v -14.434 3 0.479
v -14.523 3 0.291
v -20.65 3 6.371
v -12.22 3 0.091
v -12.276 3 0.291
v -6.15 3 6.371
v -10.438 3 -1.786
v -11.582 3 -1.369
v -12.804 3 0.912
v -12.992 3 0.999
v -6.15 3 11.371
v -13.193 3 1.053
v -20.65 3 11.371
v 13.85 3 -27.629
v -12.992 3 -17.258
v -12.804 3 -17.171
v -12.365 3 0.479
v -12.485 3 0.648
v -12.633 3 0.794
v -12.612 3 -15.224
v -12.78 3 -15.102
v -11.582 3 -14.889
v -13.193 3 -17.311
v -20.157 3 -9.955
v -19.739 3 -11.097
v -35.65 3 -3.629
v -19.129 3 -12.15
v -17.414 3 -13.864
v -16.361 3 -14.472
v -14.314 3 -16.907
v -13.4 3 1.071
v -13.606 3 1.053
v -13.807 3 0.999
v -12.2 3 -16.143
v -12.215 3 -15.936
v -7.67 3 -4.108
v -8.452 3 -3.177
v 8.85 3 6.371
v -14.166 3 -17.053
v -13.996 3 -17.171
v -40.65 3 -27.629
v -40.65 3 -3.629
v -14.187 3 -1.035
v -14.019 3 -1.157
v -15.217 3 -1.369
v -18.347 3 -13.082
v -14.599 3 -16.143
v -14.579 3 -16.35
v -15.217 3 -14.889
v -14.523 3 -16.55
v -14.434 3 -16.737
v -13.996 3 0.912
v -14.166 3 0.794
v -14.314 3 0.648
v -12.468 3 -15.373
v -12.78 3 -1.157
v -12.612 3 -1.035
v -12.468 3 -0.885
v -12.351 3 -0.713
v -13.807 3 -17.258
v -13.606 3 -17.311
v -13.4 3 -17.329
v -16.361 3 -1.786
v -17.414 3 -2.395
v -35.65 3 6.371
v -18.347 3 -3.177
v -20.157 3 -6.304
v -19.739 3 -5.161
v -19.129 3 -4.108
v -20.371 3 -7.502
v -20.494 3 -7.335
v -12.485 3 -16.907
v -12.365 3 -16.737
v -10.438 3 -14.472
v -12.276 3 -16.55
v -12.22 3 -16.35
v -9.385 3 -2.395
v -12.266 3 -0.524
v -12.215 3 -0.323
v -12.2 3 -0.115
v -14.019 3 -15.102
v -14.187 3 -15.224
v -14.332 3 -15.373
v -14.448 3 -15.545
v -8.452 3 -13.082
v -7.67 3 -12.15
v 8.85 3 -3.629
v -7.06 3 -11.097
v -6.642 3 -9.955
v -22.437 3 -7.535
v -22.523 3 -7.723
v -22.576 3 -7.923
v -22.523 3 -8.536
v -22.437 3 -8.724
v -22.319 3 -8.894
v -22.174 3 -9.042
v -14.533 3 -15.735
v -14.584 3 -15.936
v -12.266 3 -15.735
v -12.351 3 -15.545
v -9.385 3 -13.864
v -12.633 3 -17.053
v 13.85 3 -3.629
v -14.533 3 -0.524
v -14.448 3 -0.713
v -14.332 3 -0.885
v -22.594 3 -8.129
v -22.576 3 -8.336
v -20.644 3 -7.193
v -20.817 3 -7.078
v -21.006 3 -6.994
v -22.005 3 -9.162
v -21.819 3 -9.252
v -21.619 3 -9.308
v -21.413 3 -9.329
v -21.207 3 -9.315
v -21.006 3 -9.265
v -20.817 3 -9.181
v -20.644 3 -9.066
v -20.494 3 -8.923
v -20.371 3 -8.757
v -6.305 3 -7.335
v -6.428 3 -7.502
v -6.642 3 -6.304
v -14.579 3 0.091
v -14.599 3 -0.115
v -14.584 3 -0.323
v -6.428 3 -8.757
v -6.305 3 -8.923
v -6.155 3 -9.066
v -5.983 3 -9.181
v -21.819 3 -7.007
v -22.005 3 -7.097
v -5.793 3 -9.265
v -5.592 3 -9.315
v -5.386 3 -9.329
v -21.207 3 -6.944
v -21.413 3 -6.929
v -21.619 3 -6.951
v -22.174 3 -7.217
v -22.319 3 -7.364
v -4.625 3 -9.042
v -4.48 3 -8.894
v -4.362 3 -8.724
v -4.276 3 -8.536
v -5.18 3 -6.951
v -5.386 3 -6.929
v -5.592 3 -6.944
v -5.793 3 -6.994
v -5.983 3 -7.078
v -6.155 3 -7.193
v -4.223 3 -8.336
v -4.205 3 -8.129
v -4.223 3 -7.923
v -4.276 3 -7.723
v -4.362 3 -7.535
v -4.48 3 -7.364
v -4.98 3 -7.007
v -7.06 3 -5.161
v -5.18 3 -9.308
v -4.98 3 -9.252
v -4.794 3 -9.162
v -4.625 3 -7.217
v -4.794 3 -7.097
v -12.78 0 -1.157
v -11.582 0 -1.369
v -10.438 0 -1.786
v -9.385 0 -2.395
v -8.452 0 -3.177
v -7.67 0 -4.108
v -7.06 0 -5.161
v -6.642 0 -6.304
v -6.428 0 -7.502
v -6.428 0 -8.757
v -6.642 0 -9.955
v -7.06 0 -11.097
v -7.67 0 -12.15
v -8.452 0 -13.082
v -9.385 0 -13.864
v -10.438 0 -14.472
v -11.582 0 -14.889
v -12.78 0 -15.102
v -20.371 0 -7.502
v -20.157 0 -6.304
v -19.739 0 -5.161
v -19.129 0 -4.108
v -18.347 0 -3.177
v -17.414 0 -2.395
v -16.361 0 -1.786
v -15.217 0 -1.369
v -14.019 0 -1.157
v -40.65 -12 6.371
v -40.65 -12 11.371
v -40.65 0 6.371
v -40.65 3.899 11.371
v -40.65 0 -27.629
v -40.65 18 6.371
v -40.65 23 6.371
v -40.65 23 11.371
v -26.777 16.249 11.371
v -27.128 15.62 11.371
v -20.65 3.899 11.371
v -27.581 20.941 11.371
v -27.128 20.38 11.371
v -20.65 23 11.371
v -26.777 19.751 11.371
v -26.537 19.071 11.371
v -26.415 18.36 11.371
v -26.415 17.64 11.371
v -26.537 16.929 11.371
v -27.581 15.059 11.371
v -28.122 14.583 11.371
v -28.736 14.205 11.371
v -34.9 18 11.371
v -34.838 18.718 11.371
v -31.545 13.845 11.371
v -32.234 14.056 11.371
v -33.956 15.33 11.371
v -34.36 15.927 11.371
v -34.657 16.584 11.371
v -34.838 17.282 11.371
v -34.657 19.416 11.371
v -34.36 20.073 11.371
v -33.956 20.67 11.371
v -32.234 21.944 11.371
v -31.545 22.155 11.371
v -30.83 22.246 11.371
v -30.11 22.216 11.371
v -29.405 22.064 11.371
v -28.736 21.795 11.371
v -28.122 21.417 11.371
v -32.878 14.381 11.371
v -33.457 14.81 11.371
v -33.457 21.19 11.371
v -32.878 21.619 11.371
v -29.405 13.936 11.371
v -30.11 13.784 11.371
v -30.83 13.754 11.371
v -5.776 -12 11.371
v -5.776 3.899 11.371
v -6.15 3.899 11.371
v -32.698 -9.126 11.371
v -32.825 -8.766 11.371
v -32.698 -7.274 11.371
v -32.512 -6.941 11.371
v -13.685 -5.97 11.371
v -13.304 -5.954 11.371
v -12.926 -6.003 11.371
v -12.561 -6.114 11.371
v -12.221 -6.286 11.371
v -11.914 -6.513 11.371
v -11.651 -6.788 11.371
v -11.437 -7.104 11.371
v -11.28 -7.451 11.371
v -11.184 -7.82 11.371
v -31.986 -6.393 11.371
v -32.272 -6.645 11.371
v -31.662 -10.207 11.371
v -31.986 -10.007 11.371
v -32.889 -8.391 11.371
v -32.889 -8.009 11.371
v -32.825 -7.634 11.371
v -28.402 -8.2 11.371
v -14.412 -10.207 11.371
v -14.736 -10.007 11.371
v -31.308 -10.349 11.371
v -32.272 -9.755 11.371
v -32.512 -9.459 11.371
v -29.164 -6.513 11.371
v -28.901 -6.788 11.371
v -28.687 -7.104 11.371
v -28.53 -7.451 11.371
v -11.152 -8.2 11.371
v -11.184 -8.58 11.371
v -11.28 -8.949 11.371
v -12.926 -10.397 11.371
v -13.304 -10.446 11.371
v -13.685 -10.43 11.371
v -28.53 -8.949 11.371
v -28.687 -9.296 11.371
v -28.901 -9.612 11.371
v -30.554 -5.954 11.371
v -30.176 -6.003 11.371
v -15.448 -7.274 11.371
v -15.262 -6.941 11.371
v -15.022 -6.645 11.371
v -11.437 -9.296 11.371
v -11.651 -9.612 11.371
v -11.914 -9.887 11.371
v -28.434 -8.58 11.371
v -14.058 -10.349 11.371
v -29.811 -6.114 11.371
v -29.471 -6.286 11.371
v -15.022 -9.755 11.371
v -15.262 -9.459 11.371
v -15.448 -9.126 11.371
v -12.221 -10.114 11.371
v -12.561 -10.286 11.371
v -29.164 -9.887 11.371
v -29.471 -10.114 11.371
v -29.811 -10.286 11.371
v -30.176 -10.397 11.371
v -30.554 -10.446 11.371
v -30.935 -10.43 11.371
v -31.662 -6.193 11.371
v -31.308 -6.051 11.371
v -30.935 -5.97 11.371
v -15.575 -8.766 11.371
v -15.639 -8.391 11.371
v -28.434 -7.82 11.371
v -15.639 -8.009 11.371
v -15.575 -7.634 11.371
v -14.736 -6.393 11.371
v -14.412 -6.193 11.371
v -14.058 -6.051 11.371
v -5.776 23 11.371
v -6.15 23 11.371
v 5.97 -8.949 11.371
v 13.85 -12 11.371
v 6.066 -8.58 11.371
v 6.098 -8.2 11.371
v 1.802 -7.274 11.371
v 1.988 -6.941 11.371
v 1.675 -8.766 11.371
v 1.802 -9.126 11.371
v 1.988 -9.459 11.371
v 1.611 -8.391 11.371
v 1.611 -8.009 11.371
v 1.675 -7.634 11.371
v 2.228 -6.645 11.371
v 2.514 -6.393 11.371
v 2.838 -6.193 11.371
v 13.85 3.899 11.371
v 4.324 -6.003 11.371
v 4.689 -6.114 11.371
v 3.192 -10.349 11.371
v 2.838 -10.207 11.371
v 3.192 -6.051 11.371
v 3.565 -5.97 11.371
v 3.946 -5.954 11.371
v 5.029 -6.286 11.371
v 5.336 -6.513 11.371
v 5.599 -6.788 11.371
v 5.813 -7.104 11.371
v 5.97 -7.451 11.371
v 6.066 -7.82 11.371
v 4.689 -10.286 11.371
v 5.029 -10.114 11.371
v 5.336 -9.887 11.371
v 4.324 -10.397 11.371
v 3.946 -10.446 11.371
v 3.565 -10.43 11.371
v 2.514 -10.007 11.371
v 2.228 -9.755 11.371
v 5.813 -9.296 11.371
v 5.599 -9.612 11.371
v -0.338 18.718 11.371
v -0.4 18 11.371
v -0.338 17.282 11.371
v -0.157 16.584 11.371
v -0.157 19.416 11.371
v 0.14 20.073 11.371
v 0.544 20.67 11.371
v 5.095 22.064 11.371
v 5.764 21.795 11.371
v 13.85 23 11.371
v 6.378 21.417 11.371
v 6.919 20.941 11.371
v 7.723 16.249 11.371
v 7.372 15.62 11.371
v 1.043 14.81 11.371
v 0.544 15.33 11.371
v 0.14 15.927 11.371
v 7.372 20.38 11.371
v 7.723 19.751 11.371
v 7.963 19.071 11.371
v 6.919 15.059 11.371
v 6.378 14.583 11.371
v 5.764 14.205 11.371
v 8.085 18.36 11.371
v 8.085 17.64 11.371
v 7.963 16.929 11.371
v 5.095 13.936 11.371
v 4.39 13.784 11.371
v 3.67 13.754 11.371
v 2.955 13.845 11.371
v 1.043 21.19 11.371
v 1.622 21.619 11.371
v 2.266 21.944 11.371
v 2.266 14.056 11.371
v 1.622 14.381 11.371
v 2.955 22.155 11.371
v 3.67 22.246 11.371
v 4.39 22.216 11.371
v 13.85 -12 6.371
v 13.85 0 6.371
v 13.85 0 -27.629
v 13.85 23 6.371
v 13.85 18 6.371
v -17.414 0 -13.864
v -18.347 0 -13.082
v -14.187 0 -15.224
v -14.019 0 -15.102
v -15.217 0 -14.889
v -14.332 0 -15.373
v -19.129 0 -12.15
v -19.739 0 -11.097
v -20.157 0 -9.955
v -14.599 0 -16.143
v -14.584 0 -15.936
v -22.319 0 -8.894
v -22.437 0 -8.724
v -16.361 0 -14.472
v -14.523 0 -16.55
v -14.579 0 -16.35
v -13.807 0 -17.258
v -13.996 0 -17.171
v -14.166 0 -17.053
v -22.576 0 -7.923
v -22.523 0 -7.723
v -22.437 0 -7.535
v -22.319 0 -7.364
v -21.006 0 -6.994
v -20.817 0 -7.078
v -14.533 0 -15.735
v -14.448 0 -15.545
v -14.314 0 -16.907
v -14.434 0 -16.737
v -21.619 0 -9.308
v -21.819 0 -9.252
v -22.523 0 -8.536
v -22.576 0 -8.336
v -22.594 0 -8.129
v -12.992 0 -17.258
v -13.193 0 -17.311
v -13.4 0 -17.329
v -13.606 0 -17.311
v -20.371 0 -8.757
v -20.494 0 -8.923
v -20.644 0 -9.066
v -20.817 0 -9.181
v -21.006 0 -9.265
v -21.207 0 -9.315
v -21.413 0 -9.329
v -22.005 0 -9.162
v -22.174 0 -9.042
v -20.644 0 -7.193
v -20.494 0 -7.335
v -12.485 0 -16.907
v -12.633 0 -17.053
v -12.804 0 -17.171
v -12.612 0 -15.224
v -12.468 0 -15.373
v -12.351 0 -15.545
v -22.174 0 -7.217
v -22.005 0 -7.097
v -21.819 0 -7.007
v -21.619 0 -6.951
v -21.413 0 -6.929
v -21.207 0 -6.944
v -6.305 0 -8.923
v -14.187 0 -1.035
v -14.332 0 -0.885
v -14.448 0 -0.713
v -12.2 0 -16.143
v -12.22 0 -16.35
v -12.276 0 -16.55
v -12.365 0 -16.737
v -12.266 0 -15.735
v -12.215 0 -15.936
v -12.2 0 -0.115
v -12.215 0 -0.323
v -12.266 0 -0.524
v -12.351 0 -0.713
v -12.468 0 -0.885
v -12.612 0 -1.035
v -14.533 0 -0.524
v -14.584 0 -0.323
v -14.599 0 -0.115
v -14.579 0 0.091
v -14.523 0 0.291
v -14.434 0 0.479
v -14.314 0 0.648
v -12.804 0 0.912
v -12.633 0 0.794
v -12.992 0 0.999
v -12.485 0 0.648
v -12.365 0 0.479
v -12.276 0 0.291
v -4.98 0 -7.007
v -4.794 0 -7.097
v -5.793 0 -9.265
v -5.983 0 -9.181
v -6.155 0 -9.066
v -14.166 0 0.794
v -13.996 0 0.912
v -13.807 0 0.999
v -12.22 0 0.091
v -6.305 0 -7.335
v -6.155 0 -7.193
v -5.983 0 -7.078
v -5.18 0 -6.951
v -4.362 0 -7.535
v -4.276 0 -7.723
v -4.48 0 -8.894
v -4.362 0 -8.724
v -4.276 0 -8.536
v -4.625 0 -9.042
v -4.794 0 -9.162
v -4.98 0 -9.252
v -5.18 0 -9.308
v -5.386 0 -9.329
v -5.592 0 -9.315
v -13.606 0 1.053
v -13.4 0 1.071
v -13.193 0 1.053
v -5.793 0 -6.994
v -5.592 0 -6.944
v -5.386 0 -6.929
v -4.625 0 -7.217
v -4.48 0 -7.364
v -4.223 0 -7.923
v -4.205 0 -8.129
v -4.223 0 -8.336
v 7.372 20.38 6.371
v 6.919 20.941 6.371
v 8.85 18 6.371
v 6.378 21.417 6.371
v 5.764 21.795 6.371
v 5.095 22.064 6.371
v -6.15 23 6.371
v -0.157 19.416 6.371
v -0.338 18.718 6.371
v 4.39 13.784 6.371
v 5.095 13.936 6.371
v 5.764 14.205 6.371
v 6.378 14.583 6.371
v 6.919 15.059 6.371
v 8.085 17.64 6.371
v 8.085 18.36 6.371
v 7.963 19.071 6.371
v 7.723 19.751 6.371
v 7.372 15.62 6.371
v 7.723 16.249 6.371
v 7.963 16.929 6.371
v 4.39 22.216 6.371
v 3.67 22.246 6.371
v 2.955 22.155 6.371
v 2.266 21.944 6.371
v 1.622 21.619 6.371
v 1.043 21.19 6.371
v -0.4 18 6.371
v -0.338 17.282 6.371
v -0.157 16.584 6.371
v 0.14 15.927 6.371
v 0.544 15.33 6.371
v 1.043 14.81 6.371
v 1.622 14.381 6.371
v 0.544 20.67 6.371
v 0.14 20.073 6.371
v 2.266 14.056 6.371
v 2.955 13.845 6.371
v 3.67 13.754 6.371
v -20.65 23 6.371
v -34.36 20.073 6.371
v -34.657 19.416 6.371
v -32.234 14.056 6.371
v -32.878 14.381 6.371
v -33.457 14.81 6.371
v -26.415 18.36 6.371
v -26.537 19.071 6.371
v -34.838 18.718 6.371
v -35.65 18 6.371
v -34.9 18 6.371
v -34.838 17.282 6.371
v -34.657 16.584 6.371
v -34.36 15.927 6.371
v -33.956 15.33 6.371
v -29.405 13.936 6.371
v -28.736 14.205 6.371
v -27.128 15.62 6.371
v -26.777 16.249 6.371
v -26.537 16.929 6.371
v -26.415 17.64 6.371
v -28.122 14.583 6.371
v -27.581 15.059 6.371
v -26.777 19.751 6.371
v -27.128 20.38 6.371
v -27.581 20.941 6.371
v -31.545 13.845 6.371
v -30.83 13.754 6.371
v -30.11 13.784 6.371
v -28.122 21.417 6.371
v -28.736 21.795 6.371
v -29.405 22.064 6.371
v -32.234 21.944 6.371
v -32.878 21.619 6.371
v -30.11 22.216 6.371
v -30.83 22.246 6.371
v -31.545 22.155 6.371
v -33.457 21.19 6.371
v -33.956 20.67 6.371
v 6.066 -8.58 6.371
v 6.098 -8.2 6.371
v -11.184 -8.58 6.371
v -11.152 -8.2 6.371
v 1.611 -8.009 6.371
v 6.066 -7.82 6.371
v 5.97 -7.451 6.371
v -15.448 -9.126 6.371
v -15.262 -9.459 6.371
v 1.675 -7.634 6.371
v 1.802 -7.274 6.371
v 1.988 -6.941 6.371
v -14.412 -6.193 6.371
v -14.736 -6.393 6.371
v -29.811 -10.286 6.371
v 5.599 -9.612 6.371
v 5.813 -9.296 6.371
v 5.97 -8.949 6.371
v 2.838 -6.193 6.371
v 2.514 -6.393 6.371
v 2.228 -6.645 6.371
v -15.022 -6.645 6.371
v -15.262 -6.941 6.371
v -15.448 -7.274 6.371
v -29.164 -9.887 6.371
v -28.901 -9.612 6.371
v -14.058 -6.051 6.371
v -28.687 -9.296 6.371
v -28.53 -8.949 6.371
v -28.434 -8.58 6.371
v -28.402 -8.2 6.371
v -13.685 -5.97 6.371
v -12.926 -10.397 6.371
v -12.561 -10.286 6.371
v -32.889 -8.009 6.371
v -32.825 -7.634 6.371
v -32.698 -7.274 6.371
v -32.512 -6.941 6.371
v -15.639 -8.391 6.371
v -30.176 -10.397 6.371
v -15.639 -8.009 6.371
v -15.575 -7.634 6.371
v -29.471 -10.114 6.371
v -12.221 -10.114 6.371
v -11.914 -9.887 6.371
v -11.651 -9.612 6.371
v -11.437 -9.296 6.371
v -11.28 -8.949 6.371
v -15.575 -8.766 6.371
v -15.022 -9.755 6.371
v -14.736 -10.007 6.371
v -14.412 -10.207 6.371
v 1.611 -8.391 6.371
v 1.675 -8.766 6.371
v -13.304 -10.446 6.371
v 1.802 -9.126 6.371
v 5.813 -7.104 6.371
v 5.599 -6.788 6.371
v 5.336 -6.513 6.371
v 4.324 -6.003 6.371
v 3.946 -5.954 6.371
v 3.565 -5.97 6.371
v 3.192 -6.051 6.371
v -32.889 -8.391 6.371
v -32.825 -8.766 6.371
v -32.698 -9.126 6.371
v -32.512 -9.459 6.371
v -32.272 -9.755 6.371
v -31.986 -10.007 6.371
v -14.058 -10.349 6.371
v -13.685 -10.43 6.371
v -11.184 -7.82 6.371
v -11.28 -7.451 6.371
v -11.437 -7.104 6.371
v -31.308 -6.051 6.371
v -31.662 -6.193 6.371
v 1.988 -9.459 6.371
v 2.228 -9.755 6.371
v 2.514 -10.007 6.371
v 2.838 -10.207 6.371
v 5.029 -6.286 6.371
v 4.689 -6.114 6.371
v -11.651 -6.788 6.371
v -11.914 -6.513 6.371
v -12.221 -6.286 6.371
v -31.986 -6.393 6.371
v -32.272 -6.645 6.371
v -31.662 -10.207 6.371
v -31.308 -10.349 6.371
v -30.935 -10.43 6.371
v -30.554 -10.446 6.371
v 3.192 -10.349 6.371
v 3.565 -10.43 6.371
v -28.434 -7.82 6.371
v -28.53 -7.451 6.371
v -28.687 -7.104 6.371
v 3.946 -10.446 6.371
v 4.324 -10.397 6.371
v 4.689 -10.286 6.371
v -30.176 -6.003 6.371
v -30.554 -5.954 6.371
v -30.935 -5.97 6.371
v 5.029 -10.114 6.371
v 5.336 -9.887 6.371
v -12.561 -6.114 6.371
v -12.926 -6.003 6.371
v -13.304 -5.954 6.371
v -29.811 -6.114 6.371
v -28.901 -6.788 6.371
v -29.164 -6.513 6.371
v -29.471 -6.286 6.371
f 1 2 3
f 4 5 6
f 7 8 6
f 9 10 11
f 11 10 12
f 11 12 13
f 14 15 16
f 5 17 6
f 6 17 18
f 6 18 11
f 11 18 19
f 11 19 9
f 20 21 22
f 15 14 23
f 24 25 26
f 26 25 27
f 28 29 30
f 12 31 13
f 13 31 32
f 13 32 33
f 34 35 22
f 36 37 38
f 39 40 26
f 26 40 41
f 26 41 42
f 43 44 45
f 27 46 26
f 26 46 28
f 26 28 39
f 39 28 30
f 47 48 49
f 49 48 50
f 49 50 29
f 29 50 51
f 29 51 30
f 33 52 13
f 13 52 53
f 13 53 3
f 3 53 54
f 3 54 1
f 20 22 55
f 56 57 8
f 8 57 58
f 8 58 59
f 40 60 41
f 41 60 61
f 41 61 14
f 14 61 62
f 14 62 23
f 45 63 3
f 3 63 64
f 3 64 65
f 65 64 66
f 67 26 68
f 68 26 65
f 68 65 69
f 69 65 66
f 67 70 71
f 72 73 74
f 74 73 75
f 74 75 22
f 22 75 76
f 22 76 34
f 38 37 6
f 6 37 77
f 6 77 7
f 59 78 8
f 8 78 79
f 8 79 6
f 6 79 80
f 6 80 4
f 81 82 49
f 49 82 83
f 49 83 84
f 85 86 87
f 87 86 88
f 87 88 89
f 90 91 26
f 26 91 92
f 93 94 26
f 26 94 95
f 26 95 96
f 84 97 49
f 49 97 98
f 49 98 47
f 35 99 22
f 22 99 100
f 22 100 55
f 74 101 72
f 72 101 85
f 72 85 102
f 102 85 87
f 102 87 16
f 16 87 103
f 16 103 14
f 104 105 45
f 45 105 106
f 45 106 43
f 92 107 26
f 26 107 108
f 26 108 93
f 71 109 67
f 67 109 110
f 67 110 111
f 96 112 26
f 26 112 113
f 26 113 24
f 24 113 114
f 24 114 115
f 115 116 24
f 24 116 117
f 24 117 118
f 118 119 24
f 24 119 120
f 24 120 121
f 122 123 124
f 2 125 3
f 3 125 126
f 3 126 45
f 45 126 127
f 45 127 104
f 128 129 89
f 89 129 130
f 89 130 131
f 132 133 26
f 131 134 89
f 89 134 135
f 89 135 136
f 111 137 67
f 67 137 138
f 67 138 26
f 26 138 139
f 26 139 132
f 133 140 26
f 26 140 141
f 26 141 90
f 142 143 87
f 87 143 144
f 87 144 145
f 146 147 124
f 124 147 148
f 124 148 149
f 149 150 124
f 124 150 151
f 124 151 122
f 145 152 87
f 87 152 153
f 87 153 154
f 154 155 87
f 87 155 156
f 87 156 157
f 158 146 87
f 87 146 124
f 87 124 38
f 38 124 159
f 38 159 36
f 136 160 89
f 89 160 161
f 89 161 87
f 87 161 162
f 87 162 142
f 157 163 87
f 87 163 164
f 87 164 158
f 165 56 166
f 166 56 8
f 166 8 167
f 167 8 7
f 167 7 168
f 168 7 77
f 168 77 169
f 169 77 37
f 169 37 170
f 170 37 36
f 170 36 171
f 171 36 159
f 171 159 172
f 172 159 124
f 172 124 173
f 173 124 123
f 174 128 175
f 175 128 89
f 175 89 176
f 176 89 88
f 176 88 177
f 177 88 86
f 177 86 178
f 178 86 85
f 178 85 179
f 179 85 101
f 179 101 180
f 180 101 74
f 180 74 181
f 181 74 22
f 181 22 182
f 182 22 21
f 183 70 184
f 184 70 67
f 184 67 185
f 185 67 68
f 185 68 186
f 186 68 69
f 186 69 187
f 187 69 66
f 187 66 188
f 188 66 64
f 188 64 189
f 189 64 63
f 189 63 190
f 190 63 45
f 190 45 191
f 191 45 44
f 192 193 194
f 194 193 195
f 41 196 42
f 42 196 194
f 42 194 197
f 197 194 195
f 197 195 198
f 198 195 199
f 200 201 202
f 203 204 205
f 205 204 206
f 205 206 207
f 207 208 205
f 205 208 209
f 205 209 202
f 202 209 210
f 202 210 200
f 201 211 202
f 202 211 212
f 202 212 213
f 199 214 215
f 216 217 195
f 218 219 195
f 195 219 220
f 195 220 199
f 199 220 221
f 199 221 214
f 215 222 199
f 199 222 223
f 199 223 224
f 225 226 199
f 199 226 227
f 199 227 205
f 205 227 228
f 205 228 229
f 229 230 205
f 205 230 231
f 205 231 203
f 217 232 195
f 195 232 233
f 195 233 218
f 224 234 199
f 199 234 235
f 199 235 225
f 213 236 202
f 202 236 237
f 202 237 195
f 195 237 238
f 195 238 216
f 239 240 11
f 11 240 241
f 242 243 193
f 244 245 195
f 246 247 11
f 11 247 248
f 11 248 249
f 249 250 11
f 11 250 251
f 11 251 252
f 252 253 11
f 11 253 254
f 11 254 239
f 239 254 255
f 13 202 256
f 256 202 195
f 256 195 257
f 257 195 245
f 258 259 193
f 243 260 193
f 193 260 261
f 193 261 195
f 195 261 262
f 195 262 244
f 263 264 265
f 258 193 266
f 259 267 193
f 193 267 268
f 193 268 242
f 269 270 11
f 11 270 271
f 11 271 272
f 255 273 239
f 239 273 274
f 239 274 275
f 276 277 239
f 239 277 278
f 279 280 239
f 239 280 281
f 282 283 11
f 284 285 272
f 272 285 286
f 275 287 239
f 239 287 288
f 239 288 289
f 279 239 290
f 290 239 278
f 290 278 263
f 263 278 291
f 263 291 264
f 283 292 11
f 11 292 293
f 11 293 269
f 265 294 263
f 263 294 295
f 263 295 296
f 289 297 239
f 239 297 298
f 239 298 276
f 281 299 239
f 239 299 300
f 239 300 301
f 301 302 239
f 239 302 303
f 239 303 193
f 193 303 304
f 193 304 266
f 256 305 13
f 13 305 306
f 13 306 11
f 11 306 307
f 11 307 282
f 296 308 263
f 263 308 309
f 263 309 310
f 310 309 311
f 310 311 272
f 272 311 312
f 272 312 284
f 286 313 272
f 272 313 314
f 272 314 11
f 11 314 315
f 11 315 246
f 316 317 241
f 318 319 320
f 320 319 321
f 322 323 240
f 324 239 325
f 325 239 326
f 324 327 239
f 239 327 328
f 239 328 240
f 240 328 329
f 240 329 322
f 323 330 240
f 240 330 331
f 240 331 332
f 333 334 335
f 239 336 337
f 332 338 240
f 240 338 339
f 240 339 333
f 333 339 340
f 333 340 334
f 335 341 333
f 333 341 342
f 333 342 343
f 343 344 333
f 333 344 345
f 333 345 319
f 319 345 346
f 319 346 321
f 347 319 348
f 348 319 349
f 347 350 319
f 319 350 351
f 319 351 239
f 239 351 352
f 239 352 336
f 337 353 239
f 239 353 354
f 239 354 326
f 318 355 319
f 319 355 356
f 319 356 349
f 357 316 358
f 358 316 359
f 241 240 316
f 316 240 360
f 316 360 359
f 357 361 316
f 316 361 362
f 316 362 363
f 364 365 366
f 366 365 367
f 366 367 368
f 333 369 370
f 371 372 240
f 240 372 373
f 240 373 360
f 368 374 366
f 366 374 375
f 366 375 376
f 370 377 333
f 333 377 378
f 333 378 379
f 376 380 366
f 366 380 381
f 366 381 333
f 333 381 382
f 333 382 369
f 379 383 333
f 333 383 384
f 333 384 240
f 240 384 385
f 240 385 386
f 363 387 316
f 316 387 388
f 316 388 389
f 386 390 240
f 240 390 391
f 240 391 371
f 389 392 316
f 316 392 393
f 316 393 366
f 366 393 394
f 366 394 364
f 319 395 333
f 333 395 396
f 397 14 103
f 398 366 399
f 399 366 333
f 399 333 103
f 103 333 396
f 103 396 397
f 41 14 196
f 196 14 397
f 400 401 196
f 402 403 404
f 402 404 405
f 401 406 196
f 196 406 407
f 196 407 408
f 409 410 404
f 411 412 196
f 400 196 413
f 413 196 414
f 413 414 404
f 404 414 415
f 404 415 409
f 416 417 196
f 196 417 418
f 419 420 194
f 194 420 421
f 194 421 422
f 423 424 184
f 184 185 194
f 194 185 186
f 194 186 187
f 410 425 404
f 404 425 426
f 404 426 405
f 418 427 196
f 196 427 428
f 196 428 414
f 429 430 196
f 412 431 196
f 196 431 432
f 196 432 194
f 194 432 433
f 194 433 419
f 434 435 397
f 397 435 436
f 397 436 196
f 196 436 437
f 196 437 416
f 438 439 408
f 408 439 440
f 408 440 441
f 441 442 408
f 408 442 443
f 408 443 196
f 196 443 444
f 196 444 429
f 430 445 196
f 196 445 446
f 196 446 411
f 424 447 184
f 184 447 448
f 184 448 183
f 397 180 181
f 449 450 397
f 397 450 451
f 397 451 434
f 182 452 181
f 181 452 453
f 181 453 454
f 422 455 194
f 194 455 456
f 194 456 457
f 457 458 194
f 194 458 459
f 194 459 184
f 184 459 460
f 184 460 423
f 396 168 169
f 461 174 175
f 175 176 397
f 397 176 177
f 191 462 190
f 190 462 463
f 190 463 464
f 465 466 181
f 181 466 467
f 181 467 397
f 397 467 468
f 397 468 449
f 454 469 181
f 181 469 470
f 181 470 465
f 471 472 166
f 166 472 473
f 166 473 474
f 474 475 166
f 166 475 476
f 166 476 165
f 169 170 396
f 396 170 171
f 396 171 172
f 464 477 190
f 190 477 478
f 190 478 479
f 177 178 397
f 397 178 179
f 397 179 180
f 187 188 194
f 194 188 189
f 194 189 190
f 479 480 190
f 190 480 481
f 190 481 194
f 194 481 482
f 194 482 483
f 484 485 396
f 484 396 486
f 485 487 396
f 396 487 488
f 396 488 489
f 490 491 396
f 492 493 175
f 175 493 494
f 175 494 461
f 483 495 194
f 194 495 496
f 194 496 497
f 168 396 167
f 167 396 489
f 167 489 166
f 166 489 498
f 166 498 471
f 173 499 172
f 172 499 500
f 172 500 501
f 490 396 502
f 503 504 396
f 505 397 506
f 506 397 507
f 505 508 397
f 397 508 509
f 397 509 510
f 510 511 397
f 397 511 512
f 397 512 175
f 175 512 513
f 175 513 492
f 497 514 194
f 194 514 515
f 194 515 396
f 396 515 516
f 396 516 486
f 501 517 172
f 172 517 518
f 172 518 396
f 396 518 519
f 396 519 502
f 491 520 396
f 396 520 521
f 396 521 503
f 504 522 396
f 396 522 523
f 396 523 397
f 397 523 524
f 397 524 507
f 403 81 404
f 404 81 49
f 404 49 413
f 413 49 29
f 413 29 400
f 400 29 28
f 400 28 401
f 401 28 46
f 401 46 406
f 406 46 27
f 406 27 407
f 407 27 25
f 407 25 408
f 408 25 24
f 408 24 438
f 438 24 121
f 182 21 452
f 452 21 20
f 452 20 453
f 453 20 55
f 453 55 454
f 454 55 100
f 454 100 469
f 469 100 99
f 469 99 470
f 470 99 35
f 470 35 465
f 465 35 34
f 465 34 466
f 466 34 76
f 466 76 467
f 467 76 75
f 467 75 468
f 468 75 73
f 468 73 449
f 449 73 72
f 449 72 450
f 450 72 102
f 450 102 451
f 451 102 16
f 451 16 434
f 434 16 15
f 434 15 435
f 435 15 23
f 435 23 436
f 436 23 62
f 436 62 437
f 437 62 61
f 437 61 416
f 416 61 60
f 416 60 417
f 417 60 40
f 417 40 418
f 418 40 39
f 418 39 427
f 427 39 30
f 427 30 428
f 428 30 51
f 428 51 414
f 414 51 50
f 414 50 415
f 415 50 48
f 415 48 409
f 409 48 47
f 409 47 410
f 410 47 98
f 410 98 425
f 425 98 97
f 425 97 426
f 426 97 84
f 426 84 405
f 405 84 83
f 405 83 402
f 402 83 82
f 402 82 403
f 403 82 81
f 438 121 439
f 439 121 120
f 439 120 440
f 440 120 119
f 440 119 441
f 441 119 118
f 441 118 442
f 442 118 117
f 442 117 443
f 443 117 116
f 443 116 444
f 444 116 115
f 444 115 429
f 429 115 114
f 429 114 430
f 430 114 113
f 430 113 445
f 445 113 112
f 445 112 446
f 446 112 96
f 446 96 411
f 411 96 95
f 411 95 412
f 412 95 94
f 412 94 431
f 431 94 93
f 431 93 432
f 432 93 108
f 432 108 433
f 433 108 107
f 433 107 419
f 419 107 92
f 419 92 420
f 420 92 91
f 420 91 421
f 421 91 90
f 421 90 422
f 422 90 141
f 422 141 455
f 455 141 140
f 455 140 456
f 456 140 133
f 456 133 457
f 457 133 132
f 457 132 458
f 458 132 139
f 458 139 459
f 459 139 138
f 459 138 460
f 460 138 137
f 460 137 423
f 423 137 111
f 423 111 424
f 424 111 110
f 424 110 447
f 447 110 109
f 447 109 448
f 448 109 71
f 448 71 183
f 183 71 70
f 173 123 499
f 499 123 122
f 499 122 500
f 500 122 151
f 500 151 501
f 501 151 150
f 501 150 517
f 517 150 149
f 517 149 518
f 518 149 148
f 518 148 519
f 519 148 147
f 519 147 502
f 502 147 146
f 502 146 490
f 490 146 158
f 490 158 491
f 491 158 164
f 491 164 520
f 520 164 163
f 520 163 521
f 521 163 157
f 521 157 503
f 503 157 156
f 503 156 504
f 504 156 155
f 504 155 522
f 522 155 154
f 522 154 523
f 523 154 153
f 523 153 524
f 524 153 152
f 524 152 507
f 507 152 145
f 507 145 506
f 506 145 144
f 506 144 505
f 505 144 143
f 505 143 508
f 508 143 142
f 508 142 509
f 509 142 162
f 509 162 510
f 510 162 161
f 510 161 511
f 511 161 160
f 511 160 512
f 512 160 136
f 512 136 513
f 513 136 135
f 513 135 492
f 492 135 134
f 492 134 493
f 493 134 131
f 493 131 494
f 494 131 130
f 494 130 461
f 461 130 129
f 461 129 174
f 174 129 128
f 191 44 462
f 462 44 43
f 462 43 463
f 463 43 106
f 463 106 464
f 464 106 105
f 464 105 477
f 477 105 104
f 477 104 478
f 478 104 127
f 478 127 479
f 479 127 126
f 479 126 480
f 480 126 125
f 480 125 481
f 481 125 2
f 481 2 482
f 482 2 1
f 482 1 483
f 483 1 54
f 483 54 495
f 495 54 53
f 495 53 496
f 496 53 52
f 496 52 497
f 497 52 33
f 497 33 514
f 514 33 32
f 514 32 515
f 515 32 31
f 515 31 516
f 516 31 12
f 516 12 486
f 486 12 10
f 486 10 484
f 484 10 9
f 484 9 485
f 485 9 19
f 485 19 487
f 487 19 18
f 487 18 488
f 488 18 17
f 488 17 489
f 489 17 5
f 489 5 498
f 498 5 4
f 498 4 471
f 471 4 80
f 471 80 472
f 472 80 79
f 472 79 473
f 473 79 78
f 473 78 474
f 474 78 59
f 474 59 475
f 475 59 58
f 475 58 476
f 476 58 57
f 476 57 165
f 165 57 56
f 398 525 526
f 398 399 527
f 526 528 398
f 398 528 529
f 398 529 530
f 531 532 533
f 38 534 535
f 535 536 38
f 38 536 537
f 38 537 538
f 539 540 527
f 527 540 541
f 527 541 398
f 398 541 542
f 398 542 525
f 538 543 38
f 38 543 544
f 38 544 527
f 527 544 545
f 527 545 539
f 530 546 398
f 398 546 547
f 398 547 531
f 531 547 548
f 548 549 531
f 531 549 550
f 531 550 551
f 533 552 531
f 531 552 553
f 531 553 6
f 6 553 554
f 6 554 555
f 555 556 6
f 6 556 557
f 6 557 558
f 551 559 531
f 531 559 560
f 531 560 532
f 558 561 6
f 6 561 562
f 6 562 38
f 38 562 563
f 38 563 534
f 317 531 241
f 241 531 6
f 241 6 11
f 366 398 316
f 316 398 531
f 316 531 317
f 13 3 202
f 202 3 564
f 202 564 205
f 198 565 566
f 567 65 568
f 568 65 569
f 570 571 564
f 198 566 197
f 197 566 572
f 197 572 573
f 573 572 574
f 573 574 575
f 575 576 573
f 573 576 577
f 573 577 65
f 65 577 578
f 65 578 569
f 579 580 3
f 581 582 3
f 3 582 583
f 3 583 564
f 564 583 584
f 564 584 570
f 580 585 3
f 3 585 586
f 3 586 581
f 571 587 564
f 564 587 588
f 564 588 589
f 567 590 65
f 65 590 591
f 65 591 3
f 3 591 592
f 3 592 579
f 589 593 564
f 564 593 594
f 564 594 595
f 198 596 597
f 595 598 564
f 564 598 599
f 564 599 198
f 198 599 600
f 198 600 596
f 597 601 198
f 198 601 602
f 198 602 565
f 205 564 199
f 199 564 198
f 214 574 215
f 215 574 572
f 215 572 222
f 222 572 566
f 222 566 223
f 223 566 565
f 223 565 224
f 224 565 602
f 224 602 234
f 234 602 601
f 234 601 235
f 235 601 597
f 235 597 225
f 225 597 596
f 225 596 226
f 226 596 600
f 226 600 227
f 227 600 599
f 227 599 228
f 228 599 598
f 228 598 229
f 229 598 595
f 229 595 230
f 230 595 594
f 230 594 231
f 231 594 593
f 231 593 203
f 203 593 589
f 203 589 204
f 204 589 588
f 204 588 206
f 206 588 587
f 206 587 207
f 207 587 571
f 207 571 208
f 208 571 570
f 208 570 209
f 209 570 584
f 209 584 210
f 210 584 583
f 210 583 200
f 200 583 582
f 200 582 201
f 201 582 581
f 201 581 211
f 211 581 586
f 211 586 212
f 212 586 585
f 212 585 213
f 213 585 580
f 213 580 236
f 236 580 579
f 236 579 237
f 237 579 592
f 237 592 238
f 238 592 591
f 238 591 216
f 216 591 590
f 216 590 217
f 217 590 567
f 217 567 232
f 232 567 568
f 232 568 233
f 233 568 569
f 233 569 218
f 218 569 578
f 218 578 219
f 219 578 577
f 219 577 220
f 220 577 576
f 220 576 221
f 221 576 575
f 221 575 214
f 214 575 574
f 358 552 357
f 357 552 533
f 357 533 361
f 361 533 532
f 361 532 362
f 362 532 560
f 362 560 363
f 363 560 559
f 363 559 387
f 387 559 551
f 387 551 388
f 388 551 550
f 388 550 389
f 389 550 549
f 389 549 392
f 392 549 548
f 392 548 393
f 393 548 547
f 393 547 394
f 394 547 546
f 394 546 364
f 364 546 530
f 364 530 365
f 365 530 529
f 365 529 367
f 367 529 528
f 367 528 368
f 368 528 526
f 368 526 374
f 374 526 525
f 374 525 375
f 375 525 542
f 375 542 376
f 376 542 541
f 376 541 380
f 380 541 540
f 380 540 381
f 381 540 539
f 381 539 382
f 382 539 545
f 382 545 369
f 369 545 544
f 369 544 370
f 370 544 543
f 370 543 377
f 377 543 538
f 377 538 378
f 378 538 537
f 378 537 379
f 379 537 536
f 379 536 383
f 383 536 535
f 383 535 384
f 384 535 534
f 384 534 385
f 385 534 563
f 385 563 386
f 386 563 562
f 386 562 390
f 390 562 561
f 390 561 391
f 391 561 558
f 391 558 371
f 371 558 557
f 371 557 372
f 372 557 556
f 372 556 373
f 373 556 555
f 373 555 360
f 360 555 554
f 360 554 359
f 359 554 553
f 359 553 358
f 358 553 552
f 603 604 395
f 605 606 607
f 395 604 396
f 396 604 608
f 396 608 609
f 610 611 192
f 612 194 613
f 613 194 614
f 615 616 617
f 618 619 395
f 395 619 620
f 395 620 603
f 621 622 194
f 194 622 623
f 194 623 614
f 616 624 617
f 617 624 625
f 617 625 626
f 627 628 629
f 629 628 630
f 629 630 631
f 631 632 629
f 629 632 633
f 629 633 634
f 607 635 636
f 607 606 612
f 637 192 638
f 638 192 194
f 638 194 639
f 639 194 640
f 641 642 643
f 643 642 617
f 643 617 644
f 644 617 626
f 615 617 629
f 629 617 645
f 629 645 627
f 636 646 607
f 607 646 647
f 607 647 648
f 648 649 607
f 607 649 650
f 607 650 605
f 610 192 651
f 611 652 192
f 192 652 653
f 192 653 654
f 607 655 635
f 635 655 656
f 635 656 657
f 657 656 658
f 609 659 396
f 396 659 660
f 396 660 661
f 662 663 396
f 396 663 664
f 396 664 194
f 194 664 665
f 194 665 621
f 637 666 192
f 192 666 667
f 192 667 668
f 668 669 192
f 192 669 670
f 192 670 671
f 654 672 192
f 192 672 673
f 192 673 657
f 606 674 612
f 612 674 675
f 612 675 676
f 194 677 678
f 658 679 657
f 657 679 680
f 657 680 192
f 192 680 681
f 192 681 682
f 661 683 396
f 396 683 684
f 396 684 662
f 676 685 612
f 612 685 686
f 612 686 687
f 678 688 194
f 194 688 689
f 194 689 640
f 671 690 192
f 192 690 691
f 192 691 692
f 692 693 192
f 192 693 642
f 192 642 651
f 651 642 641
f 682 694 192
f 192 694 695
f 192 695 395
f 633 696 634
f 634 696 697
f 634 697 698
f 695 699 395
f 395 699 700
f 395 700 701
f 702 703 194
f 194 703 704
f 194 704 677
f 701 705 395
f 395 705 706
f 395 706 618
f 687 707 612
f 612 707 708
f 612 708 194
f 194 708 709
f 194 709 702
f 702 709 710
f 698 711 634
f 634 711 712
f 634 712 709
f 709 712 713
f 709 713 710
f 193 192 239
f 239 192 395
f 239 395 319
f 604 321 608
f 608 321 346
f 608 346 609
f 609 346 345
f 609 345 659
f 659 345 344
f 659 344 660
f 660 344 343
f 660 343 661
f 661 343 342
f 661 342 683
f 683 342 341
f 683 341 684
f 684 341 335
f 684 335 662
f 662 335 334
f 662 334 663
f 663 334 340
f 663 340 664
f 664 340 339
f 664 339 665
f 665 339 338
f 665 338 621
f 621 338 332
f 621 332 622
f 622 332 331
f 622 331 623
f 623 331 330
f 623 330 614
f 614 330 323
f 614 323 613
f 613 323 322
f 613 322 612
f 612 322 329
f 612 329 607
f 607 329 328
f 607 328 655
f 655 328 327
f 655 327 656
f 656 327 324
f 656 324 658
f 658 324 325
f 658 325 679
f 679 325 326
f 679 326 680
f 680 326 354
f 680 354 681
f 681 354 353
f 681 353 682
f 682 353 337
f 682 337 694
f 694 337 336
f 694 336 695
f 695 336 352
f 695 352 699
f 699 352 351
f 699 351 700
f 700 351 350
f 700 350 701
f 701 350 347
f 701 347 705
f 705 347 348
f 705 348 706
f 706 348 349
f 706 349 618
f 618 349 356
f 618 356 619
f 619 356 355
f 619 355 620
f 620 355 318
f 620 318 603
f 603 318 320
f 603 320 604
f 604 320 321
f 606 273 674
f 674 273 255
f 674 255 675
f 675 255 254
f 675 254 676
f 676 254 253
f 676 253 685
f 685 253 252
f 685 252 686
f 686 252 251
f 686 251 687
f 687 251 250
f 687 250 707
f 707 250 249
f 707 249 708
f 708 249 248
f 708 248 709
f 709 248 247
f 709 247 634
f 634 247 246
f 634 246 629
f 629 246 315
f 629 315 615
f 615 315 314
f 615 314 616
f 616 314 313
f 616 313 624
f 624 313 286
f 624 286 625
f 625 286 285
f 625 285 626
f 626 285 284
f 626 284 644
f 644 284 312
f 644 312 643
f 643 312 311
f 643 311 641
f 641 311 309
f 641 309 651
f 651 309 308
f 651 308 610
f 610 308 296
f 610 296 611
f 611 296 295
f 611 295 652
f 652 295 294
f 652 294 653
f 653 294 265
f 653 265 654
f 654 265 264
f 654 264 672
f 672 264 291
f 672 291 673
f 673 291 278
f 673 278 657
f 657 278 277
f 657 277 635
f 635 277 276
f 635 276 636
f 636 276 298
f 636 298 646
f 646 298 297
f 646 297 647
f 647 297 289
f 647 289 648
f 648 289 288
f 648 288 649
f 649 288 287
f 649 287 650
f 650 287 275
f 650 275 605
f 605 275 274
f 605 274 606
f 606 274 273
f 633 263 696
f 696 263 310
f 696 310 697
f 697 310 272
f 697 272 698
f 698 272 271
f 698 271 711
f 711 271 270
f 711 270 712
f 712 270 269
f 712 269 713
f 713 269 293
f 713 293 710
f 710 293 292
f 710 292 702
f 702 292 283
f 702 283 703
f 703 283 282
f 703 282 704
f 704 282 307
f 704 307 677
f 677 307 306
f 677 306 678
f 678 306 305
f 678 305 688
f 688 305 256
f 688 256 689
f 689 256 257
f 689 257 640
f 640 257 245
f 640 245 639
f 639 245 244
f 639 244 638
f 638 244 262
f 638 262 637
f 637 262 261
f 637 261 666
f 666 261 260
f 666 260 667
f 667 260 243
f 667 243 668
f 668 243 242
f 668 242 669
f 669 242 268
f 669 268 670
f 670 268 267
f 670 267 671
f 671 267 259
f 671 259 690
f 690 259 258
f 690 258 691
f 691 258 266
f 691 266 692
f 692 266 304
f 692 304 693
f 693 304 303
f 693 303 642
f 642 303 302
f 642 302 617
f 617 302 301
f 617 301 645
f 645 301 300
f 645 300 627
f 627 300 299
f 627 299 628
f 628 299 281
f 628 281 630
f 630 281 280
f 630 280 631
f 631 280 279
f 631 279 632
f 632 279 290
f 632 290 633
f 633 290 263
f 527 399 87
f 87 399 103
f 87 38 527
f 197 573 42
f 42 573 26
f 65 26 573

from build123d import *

# Parameters (mm, degrees)
SKETCH1_W                 = 54.5
SKETCH1_H                 = 39
BOSS_EXTRUDE1_DEPTH       = 3
SKETCH10_R                = 7
CUT_EXTRUDE1_DEPTH        = 5
M2_CLEARANCE_HOLE1_D      = 2.4
M2_CLEARANCE_HOLE1_DEPTH  = 17
M2_CLEARANCE_HOLE1_TIP    = 0.721032743
SKETCH12_W                = 20
SKETCH12_H                = 5
BOSS_EXTRUDE2_DEPTH       = 20
SKETCH13_R                = 4.25
CUT_EXTRUDE2_DEPTH        = 5
SKETCH16_W                = 54.5
SKETCH16_H                = 5
BOSS_EXTRUDE4_DEPTH       = 12
F_8_CLEARANCE_HOLE1_D     = 4.4958
F_8_CLEARANCE_HOLE1_DEPTH = 17
F_8_CLEARANCE_HOLE1_TIP   = 1.350674586
RIB2_REACH                = 67.289
SKETCH20_WALL_W           = 150.605379482
SKETCH20_WALL_H           = 5
RIB4_REACH                = 67.289
SKETCH21_WALL_W           = 150.605379482
SKETCH21_WALL_H           = 5


with BuildPart() as part:
    # Sketch1 → Boss-Extrude1 (new body)
    with BuildSketch(Plane(origin=(0, 0, 0), x_dir=(1, 0, 0), z_dir=(0, 1, 0))):
        with Locations((-13.399543841, 8.129312584)):
            Rectangle(SKETCH1_W, SKETCH1_H)
    extrude(amount=BOSS_EXTRUDE1_DEPTH)

    # Sketch10 → Cut-Extrude1 (cut)
    with BuildSketch(Plane(origin=(0, 3, 0), x_dir=(1, 0, 0), z_dir=(0, 1, 0))):
        with Locations(Location((-13.399543841, 8.129312584, 0), (0, 0, 270))):
            Circle(SKETCH10_R)
    extrude(amount=-CUT_EXTRUDE1_DEPTH, mode=Mode.SUBTRACT)

    # M2 Clearance Hole1
    with Locations(Plane(origin=(-13.399543841, 3, -0.129312584), x_dir=(0, 0, 1), z_dir=(0, 1, 0))):
        with Locations((0, 0), (-8, 7.99475453), (-8, -7.99475453), (-16, 0)):
            Hole(M2_CLEARANCE_HOLE1_D / 2, depth=M2_CLEARANCE_HOLE1_DEPTH)
            with Locations((0, 0, -(M2_CLEARANCE_HOLE1_DEPTH + M2_CLEARANCE_HOLE1_TIP / 2))):  # 118° drill point
                Cone(0, M2_CLEARANCE_HOLE1_D / 2, M2_CLEARANCE_HOLE1_TIP, mode=Mode.SUBTRACT)

    # Sketch12 → Boss-Extrude2 (add)
    with BuildSketch(Plane(origin=(0, 3, 0), x_dir=(1, 0, 0), z_dir=(0, 1, 0))):
        with Locations((3.850456159, -8.870687416)):
            Rectangle(SKETCH12_W, SKETCH12_H)
        with Locations((-30.649543841, -8.870687416)):
            Rectangle(SKETCH12_W, SKETCH12_H)
    extrude(amount=BOSS_EXTRUDE2_DEPTH)

    # Sketch13 → Cut-Extrude2 (cut)
    with BuildSketch(Plane(origin=(0, 0, 6.370687416), x_dir=(-1, 0, 0), z_dir=(0, 0, -1))):
        with Locations((-3.850456159, 18)):
            Circle(SKETCH13_R)
        with Locations((30.649543841, 18)):
            Circle(SKETCH13_R)
    extrude(amount=-CUT_EXTRUDE2_DEPTH, mode=Mode.SUBTRACT)

    # Sketch16 → Boss-Extrude4 (add)
    with BuildSketch(Plane.XZ):
        with Locations((-13.399543841, 8.870687416)):
            Rectangle(SKETCH16_W, SKETCH16_H)
    extrude(amount=BOSS_EXTRUDE4_DEPTH)

    # #8 Clearance Hole1
    with Locations(Plane(origin=(-30.649543841, -8.2, 11.370687416), x_dir=(1, 0, 0), z_dir=(0, 0, 1))):
        with Locations((0, 0), (17.25, 0), (34.5, 0)):
            Hole(F_8_CLEARANCE_HOLE1_D / 2, depth=F_8_CLEARANCE_HOLE1_DEPTH)
            with Locations((0, 0, -(F_8_CLEARANCE_HOLE1_DEPTH + F_8_CLEARANCE_HOLE1_TIP / 2))):  # 118° drill point
                Cone(0, F_8_CLEARANCE_HOLE1_D / 2, F_8_CLEARANCE_HOLE1_TIP, mode=Mode.SUBTRACT)

    # Sketch20 wall → Rib2 (add, up to next)
    with BuildSketch(Plane(origin=(13.850456159, 10.5, 1.370687416), x_dir=(0, -0.832050294338, -0.554700196225), z_dir=(0, 0.554700196225, -0.832050294338)), mode=Mode.PRIVATE) as rib2_sk1:
        with Locations((0, 2.5)):
            Rectangle(SKETCH20_WALL_W, SKETCH20_WALL_H)
    rib2_tool1 = extrude(rib2_sk1.sketch, amount=-RIB2_REACH, mode=Mode.PRIVATE) - part.part
    add(rib2_tool1.solids().sort_by_distance((13.850456159, 10.5, 1.370687416))[0])

    # Sketch21 wall → Rib4 (add, up to next)
    with BuildSketch(Plane(origin=(-40.649543841, 10.5, 1.370687416), x_dir=(0, -0.832050294338, -0.554700196225), z_dir=(0, -0.554700196225, 0.832050294338)), mode=Mode.PRIVATE) as rib4_sk1:
        with Locations((0, 2.5)):
            Rectangle(SKETCH21_WALL_W, SKETCH21_WALL_H)
    rib4_tool1 = extrude(rib4_sk1.sketch, amount=RIB4_REACH, mode=Mode.PRIVATE) - part.part
    add(rib4_tool1.solids().sort_by_distance((-40.649543841, 10.5, 1.370687416))[0])


solid = part.part
